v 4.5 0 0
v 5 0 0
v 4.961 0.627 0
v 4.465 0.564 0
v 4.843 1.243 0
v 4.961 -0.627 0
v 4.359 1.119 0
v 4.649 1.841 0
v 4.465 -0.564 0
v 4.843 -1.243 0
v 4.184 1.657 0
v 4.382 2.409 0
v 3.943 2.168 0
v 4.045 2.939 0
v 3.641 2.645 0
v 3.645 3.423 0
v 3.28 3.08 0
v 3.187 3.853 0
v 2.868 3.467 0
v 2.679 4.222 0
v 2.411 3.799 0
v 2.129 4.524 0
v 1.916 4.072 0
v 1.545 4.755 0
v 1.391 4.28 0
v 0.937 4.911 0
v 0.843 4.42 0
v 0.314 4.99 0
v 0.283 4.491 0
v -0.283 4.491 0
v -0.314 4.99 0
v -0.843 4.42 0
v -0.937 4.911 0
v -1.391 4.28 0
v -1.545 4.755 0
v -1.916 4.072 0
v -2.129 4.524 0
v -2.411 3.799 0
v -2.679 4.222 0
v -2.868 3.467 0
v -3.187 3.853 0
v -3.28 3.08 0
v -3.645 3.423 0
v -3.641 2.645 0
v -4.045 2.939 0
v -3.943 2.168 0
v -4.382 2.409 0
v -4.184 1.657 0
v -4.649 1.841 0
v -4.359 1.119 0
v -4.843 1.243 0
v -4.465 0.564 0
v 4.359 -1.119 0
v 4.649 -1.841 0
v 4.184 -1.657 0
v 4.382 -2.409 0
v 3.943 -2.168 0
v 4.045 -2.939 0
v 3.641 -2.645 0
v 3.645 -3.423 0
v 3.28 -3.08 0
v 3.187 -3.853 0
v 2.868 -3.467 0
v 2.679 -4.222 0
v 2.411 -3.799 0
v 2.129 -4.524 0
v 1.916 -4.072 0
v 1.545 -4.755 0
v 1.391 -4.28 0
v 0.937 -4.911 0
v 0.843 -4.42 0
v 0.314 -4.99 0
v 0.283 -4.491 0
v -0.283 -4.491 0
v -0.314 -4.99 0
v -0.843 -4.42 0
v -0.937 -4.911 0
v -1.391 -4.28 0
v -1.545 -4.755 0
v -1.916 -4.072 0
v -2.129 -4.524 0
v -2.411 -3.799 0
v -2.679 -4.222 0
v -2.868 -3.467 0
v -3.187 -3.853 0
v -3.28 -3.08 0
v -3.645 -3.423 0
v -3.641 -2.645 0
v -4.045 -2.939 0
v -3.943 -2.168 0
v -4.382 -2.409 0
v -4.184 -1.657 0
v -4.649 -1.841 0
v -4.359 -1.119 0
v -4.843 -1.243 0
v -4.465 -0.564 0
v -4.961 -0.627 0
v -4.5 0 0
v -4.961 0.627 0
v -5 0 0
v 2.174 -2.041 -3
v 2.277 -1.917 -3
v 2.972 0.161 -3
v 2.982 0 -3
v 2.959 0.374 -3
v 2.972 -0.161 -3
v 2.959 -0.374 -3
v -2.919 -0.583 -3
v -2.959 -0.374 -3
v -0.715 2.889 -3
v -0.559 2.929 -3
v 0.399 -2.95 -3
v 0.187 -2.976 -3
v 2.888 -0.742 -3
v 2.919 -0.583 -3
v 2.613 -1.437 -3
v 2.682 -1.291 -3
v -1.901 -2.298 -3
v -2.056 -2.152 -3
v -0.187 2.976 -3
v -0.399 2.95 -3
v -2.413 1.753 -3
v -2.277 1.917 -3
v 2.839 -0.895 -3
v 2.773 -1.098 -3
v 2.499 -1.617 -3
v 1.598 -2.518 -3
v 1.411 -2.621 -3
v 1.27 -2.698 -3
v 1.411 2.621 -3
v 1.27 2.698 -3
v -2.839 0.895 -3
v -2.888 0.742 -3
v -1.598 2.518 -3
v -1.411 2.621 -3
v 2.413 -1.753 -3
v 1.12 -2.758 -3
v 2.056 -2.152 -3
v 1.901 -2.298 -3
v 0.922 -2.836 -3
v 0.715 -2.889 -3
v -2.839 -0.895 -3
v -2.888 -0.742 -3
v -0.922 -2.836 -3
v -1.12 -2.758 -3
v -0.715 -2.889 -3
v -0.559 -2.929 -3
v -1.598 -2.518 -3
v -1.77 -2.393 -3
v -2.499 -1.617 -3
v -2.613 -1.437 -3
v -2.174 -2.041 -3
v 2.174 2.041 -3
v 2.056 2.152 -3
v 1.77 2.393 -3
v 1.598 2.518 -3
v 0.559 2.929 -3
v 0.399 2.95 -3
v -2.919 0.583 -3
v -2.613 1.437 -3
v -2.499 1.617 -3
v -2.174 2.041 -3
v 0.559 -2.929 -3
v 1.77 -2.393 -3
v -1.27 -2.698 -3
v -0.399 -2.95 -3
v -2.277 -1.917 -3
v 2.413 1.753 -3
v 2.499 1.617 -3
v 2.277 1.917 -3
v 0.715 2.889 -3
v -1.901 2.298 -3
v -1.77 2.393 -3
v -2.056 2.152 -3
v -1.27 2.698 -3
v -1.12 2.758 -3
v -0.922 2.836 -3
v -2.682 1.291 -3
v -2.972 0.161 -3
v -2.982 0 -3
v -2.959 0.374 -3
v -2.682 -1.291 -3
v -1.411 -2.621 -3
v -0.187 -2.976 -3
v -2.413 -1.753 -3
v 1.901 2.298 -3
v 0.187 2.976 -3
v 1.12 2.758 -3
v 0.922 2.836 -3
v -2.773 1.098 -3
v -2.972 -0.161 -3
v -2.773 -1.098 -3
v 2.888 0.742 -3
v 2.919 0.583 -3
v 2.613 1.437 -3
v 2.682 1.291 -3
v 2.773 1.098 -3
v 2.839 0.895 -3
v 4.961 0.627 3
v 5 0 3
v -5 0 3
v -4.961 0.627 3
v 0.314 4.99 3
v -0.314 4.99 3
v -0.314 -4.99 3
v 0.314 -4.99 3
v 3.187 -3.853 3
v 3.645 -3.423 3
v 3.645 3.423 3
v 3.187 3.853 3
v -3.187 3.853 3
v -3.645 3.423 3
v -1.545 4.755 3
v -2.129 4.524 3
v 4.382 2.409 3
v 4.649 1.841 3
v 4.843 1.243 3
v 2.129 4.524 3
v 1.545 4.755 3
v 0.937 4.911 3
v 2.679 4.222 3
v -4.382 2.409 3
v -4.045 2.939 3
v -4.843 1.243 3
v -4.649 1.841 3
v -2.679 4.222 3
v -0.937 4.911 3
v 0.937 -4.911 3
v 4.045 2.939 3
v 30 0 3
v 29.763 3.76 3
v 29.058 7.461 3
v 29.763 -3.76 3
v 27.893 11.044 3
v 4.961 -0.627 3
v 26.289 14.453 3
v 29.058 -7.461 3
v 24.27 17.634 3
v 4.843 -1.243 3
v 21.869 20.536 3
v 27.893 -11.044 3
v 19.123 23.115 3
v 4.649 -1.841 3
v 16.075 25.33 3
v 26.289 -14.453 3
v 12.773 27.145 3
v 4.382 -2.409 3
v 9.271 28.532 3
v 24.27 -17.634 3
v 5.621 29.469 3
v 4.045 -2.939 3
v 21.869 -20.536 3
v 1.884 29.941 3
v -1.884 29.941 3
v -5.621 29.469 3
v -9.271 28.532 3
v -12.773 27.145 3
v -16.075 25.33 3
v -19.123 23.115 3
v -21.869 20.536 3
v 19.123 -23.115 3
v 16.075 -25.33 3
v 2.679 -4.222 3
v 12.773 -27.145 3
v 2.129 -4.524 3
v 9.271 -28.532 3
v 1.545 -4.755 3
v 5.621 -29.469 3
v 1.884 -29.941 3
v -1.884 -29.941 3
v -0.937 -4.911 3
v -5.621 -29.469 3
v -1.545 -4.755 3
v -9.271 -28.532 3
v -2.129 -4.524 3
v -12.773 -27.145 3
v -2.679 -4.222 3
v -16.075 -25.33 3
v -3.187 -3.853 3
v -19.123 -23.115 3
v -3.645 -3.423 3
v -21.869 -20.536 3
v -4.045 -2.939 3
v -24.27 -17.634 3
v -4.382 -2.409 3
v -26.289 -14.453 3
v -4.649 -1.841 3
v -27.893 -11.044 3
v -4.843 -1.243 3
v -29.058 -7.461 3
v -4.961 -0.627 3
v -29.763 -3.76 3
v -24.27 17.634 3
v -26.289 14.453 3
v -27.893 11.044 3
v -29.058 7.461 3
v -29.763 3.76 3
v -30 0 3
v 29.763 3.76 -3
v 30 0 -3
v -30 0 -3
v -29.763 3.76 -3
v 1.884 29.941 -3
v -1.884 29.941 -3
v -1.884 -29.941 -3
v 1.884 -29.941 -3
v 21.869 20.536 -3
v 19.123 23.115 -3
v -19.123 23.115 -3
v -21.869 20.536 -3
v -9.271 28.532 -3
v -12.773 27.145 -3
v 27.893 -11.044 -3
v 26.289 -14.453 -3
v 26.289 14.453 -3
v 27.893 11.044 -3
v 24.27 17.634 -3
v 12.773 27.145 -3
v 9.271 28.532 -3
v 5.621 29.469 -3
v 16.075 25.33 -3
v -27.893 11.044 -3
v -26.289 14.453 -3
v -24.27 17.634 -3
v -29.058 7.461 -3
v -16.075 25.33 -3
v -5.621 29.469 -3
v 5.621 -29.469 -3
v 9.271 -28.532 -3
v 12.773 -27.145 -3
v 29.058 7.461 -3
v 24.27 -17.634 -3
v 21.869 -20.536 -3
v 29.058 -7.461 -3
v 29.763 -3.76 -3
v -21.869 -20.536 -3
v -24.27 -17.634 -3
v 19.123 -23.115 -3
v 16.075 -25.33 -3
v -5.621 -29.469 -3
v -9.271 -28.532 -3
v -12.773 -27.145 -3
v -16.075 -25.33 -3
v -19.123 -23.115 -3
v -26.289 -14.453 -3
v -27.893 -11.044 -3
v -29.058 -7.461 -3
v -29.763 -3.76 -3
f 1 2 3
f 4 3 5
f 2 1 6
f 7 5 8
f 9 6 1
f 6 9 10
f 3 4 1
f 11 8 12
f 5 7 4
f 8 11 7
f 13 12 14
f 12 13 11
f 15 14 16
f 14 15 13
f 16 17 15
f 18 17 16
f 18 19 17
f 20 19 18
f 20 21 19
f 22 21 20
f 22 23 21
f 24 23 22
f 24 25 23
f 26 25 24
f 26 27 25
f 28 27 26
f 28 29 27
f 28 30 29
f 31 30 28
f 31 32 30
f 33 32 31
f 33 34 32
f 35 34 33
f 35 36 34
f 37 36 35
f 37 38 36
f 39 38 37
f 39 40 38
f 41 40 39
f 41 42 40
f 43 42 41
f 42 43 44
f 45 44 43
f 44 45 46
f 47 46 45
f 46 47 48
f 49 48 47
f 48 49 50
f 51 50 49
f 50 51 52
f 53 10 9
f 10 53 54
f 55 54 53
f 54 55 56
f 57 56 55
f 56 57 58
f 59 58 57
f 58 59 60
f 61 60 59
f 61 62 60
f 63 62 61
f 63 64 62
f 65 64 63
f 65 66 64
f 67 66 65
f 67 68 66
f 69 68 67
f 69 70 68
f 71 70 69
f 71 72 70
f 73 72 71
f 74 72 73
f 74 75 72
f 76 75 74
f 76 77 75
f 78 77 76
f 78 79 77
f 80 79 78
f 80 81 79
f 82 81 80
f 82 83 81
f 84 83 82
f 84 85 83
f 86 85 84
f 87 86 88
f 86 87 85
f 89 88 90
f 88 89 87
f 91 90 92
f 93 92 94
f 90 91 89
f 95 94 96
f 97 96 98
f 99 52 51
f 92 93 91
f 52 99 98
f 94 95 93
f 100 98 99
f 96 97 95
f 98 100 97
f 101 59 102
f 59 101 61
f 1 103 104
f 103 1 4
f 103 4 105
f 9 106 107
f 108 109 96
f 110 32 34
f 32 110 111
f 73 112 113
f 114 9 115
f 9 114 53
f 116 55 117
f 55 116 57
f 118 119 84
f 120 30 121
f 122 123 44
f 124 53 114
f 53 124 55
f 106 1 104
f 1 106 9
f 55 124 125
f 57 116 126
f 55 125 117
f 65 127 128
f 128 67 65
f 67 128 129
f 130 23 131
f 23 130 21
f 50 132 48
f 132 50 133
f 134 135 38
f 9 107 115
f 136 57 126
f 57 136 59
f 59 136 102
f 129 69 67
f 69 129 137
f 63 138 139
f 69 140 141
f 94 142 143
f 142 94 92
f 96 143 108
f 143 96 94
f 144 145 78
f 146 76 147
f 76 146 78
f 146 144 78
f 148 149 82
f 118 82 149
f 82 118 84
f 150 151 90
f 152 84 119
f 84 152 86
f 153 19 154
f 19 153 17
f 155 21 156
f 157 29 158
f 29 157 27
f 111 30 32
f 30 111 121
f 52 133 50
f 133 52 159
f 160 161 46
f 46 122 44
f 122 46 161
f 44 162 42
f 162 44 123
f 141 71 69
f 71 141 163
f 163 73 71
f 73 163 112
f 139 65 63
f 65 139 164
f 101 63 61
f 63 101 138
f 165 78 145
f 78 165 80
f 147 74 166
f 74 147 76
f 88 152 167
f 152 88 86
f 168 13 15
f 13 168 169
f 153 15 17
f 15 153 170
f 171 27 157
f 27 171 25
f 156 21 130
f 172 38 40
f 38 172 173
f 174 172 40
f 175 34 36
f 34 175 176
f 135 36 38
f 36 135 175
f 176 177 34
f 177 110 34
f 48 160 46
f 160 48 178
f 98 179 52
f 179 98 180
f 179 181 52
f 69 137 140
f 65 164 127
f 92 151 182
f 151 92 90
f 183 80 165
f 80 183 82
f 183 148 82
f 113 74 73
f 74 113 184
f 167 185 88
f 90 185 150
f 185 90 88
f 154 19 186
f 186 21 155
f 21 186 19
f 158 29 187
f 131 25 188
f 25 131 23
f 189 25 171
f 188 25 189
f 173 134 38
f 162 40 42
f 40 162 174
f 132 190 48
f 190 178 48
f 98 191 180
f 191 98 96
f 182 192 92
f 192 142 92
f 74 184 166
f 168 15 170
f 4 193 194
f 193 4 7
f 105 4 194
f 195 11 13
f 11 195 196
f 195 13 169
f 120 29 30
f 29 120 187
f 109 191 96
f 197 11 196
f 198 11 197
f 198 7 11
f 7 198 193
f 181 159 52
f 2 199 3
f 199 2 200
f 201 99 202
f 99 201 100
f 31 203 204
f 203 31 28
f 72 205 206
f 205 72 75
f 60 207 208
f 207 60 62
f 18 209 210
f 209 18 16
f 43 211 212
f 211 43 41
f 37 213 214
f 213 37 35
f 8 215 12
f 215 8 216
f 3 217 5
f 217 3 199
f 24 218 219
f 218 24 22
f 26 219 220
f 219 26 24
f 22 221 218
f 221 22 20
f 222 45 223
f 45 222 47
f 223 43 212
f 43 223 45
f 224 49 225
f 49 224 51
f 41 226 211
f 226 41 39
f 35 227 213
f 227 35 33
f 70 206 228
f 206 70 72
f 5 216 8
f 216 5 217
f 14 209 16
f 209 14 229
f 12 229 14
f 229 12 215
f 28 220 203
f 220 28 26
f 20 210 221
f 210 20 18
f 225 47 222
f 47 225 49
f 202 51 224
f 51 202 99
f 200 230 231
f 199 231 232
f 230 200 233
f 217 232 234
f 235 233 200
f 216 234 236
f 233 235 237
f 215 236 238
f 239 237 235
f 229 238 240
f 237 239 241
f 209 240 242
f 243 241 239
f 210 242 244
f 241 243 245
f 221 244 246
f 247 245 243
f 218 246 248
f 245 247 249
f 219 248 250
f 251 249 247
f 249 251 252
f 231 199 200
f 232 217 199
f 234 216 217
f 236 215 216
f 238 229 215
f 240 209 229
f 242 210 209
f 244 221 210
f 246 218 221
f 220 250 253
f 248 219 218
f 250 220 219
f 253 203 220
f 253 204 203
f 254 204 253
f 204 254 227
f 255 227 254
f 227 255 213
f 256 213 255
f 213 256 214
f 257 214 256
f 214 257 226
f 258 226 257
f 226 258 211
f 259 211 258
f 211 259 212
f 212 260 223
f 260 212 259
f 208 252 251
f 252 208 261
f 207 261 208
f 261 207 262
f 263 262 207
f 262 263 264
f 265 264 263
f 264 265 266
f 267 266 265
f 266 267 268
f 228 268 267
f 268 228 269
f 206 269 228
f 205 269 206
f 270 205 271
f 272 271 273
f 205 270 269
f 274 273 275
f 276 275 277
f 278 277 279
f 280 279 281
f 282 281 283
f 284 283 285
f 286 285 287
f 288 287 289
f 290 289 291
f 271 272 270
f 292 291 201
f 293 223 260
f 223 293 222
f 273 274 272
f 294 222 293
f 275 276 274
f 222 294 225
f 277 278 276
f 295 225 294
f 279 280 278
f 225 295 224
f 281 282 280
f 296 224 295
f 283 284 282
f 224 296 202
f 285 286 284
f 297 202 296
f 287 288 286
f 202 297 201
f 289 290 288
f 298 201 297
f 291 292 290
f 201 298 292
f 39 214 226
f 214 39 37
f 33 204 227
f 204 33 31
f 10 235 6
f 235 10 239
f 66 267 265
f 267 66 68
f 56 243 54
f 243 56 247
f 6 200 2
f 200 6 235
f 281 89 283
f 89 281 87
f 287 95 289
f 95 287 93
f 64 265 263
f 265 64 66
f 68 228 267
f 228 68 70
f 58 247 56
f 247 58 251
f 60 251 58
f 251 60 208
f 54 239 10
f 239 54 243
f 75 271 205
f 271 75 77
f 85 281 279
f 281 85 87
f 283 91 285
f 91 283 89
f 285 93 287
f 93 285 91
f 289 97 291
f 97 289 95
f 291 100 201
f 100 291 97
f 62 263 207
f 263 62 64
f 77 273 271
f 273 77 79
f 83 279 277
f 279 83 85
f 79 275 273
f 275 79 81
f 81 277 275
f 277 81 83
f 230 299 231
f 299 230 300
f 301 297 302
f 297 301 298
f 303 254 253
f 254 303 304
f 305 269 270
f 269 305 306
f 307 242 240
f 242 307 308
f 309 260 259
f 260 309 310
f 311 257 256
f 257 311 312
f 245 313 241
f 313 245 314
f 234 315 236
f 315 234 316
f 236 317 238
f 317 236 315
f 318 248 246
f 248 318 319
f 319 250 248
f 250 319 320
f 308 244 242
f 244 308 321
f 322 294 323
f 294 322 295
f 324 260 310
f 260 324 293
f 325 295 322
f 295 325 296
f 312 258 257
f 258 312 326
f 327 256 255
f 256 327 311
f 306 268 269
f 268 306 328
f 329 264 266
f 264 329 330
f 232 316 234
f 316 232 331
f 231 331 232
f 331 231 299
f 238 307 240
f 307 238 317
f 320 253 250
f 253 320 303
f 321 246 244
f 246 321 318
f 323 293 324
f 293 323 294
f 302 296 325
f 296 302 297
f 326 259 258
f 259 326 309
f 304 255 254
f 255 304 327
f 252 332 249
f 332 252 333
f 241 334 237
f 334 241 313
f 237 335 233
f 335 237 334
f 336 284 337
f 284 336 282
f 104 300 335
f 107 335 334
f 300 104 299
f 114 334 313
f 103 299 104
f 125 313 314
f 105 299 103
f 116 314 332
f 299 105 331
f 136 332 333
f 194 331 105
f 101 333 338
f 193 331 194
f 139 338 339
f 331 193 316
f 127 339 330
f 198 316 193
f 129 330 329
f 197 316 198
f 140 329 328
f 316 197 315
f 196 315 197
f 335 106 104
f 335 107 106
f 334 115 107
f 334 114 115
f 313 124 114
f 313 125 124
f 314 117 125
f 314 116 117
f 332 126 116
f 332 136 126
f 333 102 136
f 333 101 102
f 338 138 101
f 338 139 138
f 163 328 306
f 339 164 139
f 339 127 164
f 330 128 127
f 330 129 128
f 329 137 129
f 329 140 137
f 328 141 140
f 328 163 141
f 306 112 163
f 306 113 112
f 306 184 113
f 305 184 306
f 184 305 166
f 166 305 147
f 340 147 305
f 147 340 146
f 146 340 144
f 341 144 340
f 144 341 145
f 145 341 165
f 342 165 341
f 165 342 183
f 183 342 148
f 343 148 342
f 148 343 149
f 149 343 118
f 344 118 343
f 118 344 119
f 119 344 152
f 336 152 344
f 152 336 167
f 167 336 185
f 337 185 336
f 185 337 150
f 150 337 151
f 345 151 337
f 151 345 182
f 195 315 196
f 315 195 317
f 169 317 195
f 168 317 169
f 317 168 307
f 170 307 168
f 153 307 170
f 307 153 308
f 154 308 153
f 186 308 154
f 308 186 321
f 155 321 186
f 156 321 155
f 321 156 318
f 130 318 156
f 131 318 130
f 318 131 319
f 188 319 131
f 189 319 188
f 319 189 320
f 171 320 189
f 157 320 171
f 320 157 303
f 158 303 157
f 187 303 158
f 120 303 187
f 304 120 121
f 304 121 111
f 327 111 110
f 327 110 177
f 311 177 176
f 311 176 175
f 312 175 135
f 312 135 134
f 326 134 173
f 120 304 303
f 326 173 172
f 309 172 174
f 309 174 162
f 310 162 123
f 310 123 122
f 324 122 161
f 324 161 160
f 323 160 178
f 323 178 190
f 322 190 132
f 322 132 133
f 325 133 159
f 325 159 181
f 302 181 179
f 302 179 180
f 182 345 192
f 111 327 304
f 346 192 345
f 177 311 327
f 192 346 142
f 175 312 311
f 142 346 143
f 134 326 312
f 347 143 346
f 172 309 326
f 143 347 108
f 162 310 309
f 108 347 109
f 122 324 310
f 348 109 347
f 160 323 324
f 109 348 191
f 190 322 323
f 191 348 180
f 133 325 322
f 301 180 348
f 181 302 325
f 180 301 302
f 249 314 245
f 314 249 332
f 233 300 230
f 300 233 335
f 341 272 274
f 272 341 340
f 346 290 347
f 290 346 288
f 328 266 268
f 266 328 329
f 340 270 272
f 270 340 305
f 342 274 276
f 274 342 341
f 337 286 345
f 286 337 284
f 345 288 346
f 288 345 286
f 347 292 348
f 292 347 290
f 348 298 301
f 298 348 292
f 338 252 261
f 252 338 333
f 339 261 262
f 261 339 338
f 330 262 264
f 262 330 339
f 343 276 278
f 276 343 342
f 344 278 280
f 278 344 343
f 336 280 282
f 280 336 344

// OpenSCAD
$fn = 50;


difference() {
	union() {
		translate(v = [0, 0, -3.0000000000]) {
			cylinder(h = 6, r = 30.0000000000);
		}
	}
	union() {
		translate(v = [0, 0, 0]) {
			rotate(a = [0, 0, 0]) {
				difference() {
					union() {
						translate(v = [0, 0, -6.0000000000]) {
							cylinder(h = 6, r = 2.2500000000);
						}
						translate(v = [0, 0, -4.2000000000]) {
							cylinder(h = 4.2000000000, r1 = 2.3750000000, r2 = 4.5000000000);
						}
						translate(v = [0, 0, -6.0000000000]) {
							cylinder(h = 6, r = 2.3750000000);
						}
						translate(v = [0, 0, -6.0000000000]) {
							cylinder(h = 6, r = 2.2500000000);
						}
					}
					union();
				}
			}
		}
		#cylinder(h = 3, r = 5.0000000000);
	}
}
